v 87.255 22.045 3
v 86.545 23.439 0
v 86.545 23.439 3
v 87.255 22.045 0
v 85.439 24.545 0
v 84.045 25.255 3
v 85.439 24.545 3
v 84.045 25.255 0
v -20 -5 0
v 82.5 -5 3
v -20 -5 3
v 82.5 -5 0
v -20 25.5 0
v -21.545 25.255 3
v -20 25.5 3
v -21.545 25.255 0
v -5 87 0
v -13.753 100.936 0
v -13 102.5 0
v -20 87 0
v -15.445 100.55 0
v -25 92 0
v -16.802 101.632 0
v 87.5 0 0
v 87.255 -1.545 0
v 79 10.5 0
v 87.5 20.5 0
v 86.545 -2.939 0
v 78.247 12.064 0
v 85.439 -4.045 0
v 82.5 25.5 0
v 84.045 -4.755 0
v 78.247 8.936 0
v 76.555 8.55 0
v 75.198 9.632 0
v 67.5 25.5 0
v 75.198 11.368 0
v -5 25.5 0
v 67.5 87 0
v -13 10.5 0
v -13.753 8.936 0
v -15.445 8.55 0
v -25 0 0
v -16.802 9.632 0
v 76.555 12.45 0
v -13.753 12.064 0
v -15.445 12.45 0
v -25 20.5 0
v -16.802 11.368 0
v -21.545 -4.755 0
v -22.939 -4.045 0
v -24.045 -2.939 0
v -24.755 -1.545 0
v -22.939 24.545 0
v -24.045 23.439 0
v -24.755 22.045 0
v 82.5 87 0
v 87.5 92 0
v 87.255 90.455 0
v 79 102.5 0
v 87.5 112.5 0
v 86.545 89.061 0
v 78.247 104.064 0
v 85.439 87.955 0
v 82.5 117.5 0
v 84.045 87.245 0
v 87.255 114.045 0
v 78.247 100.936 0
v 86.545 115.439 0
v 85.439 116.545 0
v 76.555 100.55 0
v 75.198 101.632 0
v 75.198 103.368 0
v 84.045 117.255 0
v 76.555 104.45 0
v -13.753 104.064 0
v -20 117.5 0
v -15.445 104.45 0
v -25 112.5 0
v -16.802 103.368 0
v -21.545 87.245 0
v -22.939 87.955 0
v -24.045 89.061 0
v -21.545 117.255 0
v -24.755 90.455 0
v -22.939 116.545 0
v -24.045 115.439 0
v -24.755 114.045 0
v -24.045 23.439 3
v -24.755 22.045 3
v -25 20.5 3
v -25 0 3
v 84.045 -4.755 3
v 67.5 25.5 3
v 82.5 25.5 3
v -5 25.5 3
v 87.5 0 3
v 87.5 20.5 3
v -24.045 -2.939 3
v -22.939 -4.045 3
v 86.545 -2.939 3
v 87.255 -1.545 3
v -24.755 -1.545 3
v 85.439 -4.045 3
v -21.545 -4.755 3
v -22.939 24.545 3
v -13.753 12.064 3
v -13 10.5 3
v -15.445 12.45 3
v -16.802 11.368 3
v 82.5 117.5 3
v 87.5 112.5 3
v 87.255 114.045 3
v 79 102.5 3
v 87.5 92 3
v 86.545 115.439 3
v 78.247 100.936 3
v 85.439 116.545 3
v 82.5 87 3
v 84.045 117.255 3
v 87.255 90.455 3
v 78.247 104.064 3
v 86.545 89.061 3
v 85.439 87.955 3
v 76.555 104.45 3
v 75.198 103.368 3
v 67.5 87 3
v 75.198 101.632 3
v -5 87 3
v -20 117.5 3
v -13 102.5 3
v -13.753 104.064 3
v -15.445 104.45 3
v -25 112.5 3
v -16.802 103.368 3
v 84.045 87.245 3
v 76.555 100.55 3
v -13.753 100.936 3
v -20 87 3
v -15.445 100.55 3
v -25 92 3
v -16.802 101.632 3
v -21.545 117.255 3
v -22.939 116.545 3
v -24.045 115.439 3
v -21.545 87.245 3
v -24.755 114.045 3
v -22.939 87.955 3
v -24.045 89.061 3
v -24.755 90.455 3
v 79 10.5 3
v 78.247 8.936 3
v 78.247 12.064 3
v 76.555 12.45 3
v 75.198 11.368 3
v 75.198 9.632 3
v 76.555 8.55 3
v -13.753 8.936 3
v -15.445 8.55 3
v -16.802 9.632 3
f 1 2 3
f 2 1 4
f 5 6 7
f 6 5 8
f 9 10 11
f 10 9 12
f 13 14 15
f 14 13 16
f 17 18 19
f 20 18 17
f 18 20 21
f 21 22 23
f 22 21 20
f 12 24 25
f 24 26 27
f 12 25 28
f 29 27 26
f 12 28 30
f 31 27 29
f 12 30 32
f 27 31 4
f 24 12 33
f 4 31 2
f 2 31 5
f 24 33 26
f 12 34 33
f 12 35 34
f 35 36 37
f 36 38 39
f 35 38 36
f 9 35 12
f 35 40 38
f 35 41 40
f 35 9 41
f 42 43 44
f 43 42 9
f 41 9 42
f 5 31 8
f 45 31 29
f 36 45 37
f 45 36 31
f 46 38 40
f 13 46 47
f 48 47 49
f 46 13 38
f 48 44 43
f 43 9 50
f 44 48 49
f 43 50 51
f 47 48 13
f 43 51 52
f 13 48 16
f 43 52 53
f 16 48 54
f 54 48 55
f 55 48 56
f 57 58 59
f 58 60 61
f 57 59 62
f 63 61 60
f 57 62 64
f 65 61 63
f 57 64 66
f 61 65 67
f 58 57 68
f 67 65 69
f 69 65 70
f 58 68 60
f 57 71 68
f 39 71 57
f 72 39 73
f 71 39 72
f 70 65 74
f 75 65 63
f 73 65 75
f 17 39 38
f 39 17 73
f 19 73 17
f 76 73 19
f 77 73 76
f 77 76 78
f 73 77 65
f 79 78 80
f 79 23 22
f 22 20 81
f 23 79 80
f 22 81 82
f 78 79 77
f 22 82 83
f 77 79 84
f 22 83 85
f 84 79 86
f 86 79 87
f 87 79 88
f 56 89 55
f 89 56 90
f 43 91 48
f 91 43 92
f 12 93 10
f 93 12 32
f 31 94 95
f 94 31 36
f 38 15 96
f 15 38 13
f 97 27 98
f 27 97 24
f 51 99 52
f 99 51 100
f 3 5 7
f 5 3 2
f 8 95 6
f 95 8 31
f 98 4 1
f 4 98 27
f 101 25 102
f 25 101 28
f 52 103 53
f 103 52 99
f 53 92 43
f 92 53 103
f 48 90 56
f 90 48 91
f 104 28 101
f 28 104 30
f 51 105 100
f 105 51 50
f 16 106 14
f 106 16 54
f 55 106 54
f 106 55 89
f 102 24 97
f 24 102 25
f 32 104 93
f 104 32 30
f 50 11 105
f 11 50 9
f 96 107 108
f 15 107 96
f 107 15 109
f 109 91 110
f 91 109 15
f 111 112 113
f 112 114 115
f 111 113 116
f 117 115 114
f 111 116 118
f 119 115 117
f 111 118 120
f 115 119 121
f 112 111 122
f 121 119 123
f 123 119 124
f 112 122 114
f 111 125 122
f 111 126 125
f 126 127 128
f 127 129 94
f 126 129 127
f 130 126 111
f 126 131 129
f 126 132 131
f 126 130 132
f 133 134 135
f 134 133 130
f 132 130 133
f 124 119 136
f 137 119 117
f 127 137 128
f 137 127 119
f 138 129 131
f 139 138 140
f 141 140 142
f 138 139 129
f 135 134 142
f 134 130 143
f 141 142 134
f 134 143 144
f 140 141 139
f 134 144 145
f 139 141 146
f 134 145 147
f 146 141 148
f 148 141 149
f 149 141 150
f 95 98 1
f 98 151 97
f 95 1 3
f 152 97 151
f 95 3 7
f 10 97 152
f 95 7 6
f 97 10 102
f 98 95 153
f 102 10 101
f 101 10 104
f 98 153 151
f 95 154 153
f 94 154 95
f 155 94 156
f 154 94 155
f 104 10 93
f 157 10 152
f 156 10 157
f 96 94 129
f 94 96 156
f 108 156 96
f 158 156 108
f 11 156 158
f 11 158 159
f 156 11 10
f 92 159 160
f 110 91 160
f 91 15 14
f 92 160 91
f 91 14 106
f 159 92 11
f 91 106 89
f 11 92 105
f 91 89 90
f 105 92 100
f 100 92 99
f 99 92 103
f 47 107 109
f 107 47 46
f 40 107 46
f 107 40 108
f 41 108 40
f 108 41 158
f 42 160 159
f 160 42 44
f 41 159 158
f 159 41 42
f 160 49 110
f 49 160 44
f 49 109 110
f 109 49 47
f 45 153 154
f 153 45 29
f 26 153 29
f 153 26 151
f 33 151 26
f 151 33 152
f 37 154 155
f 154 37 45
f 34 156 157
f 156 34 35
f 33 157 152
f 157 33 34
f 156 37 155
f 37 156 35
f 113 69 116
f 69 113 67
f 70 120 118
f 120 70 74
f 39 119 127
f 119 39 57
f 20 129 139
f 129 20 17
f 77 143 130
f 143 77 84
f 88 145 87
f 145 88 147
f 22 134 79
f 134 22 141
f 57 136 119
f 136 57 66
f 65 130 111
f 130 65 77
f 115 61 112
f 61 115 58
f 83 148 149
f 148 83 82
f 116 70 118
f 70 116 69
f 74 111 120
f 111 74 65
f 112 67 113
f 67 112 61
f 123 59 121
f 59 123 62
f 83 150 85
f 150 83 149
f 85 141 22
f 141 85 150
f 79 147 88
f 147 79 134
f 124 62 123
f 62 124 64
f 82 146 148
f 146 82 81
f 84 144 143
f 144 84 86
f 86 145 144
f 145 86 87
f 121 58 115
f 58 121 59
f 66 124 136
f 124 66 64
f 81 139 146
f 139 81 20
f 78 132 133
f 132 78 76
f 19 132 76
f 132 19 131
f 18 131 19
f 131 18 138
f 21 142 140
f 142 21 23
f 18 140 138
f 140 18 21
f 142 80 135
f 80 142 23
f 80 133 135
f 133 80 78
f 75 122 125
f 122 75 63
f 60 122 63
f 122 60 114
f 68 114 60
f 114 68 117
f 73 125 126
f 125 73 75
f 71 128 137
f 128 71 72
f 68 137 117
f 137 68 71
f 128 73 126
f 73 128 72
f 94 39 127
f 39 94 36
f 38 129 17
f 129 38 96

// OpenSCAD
// file: ../../../../../../basics/rounded-edges/rounded-cube/rounded-cube.scad
/**
 *
 *  some parts of this software were inspired by
 *
 * 	     http://www.thingiverse.com/thing:9347
 *
 */

/**
 * makes a rounded cube
 */
module roundedCube(cornerRadius=4,
				   cubeCentered=false,
				   sides=30,
				   sidesOnly=false,
				   size=[20,20,2])
{
    $fn=sides;

    x = size[0] - cornerRadius/2;
    y = size[1] - cornerRadius/2;
    z = size[2];

    minkowski(size, cornerRadius)
    {
        cube(size=[x,y,z], center=cubeCentered);

        if(sidesOnly)
        {
            cylinder(r=cornerRadius);
        }
        else
        {
            sphere(r=cornerRadius);
        }
    };
}
// main file
use <.././../../../../../basics/rounded-edges/rounded-cube/rounded-cube.scad>

cornerRadius = 5;

zLenght = 2;

baseSize = [cornerRadius + 60,  // should be 65
            cornerRadius + 110, // should be 115
            zLenght];

union()
{
    roundedCube(cornerRadius = cornerRadius,
                    sides=20,
                    sidesOnly=true,
                    size=baseSize);

    color("teal")
    tabBar();

    yTranslate = 115 - (baseSize[1] * 0.2);
    color("red")
    translate([0, yTranslate, 0])
    tabBar();
}

module tabBar()
{
    xSize = baseSize[0] + 40;
    ySize = baseSize[1] * 0.2;
    tabSize = [xSize, ySize, zLenght + 0];

    difference()
    {
        xTranslate = baseSize[0] / 2.0 - (xSize / 2.0);

        translate([xTranslate, 0, 0])
        roundedCube(cornerRadius = cornerRadius,
                        sides=20,
                        sidesOnly=true,
                        size=tabSize);


        // cutouts for screws
        cutoutRadius = 2.0;
        cutoutTranslateX = xTranslate * 0.75;
        cutoutTranslateY = ySize / 2.0 - (cutoutRadius / 2.0);

        translate([cutoutTranslateX, cutoutTranslateY, -0.01])
        cylinder(r = cutoutRadius, h = 20);

        otherTranslateX = 77;
        translate([otherTranslateX, cutoutTranslateY, -0.01])
        cylinder(r = cutoutRadius, h = 20);
    }
}
